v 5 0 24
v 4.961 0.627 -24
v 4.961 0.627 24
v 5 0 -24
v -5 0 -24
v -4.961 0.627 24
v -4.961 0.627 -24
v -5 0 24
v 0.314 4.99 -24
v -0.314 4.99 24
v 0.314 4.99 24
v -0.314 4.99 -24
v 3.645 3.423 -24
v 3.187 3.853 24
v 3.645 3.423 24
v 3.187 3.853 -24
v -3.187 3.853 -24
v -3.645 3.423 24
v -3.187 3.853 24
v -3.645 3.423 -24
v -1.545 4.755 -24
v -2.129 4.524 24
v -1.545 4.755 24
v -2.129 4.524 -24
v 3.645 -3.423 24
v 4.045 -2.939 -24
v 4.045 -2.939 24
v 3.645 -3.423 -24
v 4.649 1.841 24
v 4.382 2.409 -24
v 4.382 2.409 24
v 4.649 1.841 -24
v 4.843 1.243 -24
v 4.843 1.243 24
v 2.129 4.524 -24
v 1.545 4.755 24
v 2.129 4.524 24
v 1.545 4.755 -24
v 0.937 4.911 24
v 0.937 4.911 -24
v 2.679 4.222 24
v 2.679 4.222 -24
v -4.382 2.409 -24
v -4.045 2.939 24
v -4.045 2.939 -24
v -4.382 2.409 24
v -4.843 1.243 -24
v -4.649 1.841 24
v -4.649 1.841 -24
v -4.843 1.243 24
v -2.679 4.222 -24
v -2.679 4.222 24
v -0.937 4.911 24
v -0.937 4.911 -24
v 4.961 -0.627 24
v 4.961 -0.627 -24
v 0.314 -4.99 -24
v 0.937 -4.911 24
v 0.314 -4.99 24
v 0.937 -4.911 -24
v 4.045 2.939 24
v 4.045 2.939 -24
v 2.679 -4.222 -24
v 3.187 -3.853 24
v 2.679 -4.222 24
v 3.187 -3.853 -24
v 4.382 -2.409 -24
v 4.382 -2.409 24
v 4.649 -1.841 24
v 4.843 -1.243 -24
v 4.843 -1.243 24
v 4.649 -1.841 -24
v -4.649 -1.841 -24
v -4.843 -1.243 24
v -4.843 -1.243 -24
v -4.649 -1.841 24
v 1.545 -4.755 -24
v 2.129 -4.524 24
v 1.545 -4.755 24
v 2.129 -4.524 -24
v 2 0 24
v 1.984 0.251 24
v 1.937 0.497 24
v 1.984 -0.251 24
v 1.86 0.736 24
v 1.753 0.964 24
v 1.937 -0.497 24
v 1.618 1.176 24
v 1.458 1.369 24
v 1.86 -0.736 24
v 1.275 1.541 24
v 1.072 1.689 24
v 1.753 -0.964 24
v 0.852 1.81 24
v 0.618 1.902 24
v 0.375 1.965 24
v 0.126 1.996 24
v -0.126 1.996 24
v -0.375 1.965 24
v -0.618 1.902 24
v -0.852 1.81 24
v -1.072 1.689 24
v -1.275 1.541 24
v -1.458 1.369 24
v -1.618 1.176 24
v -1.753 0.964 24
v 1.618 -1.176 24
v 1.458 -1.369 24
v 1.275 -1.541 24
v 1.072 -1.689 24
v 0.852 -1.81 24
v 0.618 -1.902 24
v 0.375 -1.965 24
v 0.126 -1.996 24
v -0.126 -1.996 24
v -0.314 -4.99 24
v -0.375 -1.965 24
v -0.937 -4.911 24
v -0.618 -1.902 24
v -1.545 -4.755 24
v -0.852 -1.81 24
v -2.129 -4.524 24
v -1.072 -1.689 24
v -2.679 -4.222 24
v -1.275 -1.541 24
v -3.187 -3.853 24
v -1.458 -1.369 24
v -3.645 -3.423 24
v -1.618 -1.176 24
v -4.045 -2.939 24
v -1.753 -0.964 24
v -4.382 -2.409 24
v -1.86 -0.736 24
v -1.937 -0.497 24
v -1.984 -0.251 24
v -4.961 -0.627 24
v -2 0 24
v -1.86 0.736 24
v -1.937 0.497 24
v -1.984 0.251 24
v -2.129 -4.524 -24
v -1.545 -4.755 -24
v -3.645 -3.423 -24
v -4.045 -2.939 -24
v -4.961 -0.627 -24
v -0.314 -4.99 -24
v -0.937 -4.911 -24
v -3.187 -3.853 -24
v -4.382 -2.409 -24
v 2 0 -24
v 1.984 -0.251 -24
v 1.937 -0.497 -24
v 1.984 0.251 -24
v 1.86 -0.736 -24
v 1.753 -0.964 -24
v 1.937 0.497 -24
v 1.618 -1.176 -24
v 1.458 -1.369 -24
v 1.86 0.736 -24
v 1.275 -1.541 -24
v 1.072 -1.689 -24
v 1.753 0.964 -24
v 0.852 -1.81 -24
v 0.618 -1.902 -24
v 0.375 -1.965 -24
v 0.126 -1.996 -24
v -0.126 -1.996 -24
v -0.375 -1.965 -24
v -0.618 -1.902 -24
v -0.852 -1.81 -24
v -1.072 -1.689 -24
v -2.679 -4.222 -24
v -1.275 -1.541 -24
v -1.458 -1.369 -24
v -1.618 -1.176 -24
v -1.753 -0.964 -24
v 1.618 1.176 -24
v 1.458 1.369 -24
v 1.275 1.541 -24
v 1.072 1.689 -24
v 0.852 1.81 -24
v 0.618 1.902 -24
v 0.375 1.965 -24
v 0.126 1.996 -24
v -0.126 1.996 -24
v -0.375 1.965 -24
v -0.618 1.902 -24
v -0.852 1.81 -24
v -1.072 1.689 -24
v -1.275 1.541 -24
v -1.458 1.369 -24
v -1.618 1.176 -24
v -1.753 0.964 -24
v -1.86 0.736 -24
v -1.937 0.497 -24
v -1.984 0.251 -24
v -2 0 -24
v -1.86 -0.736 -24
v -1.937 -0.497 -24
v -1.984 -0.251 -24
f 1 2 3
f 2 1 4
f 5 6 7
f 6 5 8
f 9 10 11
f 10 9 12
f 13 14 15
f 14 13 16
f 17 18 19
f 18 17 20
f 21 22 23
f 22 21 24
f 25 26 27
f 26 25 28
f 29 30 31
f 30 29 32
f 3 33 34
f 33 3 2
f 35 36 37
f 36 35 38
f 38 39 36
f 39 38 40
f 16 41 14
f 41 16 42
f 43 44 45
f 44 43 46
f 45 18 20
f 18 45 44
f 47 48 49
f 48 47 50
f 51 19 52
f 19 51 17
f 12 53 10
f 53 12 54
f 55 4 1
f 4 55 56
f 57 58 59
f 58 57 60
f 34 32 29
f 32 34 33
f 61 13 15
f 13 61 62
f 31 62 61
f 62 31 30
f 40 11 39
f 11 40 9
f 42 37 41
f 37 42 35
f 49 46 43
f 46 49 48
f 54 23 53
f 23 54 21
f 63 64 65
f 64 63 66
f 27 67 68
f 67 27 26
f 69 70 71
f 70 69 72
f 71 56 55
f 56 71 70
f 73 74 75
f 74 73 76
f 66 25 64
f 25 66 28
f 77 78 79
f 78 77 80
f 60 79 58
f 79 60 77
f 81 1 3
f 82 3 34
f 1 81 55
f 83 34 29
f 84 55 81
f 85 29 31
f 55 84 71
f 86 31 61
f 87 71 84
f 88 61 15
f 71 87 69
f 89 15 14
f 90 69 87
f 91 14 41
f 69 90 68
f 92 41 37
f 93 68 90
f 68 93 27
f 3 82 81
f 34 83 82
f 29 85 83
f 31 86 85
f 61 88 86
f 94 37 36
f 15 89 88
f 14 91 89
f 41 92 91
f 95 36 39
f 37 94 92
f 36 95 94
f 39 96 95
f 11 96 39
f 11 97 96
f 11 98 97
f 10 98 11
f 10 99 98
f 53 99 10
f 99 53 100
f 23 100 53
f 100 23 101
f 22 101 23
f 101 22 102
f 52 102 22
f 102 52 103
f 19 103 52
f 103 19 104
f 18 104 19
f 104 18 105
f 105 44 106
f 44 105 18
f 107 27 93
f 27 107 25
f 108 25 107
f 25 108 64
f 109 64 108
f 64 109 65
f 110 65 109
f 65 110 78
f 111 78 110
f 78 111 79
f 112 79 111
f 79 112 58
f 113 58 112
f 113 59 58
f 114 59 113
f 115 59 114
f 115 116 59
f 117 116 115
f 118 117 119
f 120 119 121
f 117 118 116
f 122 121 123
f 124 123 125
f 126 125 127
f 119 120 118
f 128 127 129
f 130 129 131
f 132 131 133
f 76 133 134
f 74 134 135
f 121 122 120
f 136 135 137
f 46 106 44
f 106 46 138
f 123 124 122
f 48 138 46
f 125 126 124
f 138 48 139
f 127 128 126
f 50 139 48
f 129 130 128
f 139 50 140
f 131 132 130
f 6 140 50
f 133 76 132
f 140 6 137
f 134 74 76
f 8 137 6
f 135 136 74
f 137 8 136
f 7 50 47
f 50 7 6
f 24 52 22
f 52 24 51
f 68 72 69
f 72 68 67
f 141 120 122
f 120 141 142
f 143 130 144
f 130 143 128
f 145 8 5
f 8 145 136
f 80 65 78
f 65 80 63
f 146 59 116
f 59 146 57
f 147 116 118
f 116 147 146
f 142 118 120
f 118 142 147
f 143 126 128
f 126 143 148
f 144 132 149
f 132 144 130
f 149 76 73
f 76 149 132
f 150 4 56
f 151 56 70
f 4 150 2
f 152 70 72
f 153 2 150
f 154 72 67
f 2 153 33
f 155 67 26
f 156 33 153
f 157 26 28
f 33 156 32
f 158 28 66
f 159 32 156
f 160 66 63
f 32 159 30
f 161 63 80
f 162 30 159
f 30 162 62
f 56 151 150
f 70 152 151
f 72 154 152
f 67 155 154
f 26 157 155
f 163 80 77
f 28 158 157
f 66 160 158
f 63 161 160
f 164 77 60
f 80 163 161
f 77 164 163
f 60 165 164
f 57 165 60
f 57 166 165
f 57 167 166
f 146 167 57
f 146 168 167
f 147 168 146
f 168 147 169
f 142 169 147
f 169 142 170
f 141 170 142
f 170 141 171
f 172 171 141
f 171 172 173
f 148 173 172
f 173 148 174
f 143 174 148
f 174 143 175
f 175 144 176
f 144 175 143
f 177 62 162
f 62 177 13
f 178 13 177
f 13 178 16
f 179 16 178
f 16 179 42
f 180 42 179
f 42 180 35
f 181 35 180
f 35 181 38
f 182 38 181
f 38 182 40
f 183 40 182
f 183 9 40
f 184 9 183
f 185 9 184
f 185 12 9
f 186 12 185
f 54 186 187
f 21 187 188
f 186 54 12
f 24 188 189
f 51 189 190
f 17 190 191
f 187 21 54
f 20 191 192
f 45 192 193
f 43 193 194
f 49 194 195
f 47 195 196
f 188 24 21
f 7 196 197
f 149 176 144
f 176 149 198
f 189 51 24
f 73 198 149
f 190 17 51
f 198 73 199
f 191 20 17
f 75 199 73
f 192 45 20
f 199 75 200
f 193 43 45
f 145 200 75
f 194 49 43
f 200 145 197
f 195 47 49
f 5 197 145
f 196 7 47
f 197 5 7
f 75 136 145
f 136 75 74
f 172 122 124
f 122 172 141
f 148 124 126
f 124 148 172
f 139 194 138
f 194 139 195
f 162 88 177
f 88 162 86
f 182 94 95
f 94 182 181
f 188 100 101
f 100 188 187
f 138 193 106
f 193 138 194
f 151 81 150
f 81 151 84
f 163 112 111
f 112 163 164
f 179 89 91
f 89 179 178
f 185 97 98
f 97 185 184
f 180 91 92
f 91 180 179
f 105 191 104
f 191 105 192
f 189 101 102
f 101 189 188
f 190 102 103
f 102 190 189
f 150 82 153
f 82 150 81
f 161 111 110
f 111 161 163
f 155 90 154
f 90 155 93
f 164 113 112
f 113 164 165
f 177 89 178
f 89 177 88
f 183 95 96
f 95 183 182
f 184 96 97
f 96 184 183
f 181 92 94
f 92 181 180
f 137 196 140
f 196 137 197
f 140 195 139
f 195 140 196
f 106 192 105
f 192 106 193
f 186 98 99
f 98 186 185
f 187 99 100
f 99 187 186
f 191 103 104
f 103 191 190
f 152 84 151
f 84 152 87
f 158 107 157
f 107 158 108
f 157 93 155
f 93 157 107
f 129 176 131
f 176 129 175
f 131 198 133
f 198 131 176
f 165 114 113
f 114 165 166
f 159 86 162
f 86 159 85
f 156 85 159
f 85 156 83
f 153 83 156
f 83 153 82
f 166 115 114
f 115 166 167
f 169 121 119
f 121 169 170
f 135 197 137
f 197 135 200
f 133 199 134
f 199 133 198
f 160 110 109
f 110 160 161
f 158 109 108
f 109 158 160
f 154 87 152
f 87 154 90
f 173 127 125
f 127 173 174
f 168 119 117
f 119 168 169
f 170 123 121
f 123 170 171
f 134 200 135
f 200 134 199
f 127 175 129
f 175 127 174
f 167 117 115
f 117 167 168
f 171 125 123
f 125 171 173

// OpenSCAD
$fn = 50;


difference() {
	union() {
		translate(v = [0, 0, -24.0000000000]) {
			cylinder(h = 48, r = 5.0000000000);
		}
	}
	union() {
		translate(v = [0, 0, -100.0000000000]) {
			cylinder(h = 200, r = 2.0000000000);
		}
	}
}
